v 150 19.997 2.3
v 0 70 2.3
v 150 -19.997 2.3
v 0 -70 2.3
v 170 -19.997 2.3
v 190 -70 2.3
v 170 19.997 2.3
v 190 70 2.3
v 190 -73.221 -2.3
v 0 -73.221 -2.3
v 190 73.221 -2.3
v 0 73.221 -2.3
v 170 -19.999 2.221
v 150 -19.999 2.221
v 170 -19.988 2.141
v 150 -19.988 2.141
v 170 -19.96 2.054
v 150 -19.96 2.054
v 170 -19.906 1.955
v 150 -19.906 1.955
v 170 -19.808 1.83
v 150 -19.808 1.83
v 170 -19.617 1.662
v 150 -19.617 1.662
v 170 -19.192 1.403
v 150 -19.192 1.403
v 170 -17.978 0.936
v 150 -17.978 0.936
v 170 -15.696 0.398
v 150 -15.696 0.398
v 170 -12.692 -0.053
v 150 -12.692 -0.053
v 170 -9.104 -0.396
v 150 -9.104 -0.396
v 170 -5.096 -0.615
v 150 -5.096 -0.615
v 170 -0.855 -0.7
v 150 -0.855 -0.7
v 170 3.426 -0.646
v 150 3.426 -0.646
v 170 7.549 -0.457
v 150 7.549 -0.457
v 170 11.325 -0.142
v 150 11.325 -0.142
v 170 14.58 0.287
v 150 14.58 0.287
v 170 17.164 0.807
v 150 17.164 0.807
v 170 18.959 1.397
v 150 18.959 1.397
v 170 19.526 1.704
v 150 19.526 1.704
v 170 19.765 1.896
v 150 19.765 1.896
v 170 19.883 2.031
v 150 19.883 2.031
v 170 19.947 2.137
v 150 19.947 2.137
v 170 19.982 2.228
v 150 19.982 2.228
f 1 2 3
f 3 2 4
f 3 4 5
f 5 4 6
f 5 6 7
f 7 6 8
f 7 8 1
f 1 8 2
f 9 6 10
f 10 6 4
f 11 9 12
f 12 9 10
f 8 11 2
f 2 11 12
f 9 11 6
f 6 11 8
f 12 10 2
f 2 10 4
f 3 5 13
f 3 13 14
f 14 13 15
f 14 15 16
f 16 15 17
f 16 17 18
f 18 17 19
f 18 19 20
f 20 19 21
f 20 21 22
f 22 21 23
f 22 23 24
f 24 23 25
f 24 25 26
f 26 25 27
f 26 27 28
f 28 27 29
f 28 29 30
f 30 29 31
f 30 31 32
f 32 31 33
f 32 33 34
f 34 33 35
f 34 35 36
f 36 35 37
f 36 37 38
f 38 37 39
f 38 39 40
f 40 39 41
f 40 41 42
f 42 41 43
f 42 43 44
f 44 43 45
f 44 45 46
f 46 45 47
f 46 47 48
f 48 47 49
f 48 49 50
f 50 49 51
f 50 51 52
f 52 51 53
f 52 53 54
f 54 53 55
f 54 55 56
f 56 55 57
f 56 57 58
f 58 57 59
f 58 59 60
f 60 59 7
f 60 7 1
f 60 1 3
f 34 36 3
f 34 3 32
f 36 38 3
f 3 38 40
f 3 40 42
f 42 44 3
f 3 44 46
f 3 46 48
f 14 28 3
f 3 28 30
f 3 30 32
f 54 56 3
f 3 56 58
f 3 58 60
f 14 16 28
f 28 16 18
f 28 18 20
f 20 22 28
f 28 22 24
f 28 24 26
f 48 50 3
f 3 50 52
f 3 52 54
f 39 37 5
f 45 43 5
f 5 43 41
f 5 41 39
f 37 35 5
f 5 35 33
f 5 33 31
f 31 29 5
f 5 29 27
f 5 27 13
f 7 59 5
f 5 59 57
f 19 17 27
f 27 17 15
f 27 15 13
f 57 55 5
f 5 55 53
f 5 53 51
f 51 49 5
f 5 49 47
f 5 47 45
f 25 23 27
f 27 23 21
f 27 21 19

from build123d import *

# Parameters (mm, degrees)
ESBO_O1_W                = 4.6
ESBO_O1_H                = 140
RESSALTO_EXTRUS_O1_DEPTH = 190
CORTE_EXTRUS_O1_START    = -20
ESBO_O2_RX               = 20.00007904
ESBO_O2_RY               = 3.000011856
CORTE_EXTRUS_O1_DEPTH    = 20


with BuildPart() as part:
    # Esboço1 → Ressalto-extrusão1 (new body)
    with BuildSketch(Plane(origin=(0, 0, 0), x_dir=(0, 0, -1), z_dir=(1, 0, 0))):
        Rectangle(ESBO_O1_W, ESBO_O1_H)
        Polygon((2.3, 70), (-2.3, 70), (2.3, 73.220954676), align=None)
        Polygon((2.3, -70), (-2.3, -70), (2.3, -73.220954676), align=None)
    extrude(amount=RESSALTO_EXTRUS_O1_DEPTH)

    # Esboço2 → Corte-extrusão1 (cut)
    with BuildSketch(Plane(origin=(190, 0, 0), x_dir=(0, 0, -1), z_dir=(1, 0, 0)).offset(CORTE_EXTRUS_O1_START)):
        with Locations(Location((-2.3, 0), (0, 0, -89.838918547))):
            Ellipse(ESBO_O2_RX, ESBO_O2_RY)
    extrude(amount=-CORTE_EXTRUS_O1_DEPTH, mode=Mode.SUBTRACT)


solid = part.part
